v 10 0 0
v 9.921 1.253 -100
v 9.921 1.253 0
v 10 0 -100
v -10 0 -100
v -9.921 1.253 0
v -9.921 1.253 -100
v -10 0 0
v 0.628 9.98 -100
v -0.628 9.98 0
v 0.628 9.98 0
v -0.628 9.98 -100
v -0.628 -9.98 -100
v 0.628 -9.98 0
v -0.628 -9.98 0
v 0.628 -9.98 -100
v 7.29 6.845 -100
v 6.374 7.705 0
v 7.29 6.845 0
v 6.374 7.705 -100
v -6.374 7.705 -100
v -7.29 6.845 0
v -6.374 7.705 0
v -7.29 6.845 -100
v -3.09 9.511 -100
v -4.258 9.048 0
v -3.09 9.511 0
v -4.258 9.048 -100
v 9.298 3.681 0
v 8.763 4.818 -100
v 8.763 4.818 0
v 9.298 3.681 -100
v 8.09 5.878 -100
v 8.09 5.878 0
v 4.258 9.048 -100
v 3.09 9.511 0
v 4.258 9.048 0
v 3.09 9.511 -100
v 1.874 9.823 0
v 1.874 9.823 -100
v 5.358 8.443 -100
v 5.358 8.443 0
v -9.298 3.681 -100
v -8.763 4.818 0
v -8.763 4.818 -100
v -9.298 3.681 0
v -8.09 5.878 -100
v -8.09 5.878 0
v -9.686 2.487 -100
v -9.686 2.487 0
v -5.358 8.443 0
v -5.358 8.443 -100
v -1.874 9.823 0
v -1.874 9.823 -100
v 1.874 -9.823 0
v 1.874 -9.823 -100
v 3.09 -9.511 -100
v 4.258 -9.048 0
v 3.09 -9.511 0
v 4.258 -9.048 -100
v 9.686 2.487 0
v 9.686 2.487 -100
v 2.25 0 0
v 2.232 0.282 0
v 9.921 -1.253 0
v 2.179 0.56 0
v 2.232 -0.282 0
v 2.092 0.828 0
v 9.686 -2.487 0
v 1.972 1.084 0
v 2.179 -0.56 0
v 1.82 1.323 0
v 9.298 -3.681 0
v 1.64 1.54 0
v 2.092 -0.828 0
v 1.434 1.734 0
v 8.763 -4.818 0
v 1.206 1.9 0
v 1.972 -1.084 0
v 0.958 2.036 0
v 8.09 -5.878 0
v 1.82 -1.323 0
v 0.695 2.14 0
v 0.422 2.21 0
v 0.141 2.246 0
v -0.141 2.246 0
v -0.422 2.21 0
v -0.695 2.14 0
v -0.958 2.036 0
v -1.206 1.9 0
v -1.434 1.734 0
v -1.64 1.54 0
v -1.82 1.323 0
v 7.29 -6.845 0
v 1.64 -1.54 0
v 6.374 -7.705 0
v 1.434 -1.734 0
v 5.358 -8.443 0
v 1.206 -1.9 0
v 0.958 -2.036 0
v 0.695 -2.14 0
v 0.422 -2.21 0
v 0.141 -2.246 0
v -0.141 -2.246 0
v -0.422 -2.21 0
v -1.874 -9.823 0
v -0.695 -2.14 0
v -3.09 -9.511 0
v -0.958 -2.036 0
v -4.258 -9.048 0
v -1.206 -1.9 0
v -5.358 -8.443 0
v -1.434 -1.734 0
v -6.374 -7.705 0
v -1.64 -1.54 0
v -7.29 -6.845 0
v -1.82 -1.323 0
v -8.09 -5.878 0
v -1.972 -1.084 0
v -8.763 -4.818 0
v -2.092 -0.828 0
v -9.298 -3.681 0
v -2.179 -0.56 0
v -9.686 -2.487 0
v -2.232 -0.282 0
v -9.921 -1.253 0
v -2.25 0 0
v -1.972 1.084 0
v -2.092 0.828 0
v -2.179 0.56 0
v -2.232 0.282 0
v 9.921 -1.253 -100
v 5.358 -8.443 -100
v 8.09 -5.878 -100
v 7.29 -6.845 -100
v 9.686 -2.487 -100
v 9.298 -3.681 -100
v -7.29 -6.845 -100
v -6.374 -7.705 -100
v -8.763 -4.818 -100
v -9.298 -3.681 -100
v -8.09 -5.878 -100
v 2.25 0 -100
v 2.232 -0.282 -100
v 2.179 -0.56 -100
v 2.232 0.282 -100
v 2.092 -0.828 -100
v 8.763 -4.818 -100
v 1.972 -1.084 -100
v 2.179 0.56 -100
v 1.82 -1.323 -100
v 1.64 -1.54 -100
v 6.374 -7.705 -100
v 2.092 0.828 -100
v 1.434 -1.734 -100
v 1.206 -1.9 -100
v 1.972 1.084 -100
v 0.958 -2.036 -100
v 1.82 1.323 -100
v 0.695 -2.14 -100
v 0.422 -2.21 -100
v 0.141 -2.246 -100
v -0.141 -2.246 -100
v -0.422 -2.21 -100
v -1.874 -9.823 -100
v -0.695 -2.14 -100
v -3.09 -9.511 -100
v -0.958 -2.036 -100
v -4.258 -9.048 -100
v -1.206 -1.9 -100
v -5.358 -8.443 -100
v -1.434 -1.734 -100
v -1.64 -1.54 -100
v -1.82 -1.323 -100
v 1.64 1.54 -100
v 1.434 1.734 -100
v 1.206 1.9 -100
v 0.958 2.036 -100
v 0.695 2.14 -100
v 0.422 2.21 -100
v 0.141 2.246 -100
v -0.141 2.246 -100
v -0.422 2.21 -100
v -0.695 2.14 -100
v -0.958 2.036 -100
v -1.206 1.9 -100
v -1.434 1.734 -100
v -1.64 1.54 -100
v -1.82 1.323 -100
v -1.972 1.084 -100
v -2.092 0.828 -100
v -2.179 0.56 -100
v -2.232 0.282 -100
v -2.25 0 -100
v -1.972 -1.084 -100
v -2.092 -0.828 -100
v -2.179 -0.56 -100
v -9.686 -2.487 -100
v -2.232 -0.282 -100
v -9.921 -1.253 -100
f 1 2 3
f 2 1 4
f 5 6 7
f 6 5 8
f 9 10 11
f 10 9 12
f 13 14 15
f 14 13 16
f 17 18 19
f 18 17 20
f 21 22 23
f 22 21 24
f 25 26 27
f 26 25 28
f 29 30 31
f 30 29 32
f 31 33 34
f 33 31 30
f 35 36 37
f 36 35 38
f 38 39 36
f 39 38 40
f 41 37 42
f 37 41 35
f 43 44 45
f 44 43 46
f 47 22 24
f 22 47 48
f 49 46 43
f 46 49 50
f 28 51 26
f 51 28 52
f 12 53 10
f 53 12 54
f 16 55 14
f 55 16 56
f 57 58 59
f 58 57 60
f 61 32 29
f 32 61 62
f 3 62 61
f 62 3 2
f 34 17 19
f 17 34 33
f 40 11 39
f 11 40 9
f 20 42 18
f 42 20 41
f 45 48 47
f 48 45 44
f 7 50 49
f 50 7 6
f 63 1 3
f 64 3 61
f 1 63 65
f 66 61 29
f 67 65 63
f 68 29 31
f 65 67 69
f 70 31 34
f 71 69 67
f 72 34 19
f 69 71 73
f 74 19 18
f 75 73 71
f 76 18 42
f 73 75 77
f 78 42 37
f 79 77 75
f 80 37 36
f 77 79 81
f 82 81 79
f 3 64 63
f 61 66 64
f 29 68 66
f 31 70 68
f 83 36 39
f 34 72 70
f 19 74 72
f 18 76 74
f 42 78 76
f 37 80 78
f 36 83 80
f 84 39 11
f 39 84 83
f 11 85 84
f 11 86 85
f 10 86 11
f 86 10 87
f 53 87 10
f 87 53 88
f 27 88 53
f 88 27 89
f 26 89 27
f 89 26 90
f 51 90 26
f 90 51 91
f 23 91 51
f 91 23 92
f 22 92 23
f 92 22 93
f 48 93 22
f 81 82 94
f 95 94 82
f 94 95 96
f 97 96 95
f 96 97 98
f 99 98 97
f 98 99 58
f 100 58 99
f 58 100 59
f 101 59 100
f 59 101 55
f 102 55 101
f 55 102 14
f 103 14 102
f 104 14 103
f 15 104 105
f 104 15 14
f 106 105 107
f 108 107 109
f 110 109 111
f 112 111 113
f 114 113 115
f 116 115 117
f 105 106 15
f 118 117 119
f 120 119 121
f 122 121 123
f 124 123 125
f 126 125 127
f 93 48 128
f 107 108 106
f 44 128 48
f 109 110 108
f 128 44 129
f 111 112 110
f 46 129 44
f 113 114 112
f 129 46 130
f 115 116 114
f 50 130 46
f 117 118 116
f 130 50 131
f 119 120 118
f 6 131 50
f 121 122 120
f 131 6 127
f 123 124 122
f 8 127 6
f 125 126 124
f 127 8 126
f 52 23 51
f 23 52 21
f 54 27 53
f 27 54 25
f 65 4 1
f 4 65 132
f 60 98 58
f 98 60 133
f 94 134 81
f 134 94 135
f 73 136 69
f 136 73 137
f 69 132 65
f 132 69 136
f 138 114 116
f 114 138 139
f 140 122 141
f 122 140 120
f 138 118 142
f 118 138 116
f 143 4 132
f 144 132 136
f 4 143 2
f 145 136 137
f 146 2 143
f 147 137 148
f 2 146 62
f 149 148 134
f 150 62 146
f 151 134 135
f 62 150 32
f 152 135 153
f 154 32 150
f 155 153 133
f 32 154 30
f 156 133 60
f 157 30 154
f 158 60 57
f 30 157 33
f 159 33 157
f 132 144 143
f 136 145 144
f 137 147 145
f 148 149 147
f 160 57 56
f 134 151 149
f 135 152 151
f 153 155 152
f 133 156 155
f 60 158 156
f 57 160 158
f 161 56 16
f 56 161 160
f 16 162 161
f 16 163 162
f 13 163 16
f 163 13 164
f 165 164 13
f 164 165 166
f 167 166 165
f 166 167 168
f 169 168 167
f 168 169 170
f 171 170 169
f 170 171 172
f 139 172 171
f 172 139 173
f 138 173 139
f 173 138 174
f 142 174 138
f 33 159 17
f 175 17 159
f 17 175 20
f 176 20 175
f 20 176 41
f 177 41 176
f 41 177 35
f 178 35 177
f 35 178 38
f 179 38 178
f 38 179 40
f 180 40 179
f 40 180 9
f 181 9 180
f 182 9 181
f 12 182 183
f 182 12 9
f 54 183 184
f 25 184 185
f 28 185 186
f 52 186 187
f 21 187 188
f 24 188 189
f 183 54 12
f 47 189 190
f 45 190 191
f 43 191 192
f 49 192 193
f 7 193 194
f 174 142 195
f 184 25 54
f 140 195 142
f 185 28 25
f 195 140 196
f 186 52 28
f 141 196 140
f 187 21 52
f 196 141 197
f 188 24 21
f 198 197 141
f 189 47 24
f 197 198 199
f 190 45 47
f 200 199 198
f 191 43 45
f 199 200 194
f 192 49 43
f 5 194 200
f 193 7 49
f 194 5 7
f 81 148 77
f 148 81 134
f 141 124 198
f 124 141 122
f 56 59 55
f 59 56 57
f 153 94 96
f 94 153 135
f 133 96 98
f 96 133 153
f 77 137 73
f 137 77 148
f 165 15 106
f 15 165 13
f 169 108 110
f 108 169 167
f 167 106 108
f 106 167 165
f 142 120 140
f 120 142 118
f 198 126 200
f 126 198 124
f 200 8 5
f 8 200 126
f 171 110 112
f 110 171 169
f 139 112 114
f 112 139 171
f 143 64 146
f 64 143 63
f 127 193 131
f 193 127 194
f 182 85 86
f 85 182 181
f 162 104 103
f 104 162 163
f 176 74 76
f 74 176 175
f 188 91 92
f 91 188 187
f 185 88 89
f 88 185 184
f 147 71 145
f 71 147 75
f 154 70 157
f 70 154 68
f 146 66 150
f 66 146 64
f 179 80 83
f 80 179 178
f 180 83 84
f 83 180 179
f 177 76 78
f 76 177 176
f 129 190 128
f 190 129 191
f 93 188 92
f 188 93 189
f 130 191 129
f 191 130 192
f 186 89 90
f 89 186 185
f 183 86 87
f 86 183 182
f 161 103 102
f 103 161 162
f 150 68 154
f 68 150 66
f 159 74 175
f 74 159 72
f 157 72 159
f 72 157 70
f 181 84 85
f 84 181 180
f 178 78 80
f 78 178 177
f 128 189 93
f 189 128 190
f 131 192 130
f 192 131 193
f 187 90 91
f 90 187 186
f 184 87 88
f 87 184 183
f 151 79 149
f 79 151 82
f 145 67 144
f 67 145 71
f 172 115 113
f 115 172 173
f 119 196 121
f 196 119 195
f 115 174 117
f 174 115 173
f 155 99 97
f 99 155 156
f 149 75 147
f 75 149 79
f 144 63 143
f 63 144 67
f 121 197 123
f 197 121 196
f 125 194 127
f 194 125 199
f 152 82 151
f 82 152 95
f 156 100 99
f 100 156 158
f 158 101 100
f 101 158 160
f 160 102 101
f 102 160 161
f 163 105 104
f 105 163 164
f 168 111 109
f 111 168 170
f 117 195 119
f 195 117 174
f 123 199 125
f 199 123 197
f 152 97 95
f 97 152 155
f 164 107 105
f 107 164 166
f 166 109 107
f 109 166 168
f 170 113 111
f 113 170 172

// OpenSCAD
$fn = 50;


difference() {
	union() {
		translate(v = [0, 0, -100.0000000000]) {
			cylinder(h = 100, r = 10.0000000000);
		}
		cylinder(h = 0, r = 13.0000000000);
	}
	union() {
		#translate(v = [0, 0, -100]) {
			cylinder(h = 100, r = 2.2500000000);
		}
	}
}
